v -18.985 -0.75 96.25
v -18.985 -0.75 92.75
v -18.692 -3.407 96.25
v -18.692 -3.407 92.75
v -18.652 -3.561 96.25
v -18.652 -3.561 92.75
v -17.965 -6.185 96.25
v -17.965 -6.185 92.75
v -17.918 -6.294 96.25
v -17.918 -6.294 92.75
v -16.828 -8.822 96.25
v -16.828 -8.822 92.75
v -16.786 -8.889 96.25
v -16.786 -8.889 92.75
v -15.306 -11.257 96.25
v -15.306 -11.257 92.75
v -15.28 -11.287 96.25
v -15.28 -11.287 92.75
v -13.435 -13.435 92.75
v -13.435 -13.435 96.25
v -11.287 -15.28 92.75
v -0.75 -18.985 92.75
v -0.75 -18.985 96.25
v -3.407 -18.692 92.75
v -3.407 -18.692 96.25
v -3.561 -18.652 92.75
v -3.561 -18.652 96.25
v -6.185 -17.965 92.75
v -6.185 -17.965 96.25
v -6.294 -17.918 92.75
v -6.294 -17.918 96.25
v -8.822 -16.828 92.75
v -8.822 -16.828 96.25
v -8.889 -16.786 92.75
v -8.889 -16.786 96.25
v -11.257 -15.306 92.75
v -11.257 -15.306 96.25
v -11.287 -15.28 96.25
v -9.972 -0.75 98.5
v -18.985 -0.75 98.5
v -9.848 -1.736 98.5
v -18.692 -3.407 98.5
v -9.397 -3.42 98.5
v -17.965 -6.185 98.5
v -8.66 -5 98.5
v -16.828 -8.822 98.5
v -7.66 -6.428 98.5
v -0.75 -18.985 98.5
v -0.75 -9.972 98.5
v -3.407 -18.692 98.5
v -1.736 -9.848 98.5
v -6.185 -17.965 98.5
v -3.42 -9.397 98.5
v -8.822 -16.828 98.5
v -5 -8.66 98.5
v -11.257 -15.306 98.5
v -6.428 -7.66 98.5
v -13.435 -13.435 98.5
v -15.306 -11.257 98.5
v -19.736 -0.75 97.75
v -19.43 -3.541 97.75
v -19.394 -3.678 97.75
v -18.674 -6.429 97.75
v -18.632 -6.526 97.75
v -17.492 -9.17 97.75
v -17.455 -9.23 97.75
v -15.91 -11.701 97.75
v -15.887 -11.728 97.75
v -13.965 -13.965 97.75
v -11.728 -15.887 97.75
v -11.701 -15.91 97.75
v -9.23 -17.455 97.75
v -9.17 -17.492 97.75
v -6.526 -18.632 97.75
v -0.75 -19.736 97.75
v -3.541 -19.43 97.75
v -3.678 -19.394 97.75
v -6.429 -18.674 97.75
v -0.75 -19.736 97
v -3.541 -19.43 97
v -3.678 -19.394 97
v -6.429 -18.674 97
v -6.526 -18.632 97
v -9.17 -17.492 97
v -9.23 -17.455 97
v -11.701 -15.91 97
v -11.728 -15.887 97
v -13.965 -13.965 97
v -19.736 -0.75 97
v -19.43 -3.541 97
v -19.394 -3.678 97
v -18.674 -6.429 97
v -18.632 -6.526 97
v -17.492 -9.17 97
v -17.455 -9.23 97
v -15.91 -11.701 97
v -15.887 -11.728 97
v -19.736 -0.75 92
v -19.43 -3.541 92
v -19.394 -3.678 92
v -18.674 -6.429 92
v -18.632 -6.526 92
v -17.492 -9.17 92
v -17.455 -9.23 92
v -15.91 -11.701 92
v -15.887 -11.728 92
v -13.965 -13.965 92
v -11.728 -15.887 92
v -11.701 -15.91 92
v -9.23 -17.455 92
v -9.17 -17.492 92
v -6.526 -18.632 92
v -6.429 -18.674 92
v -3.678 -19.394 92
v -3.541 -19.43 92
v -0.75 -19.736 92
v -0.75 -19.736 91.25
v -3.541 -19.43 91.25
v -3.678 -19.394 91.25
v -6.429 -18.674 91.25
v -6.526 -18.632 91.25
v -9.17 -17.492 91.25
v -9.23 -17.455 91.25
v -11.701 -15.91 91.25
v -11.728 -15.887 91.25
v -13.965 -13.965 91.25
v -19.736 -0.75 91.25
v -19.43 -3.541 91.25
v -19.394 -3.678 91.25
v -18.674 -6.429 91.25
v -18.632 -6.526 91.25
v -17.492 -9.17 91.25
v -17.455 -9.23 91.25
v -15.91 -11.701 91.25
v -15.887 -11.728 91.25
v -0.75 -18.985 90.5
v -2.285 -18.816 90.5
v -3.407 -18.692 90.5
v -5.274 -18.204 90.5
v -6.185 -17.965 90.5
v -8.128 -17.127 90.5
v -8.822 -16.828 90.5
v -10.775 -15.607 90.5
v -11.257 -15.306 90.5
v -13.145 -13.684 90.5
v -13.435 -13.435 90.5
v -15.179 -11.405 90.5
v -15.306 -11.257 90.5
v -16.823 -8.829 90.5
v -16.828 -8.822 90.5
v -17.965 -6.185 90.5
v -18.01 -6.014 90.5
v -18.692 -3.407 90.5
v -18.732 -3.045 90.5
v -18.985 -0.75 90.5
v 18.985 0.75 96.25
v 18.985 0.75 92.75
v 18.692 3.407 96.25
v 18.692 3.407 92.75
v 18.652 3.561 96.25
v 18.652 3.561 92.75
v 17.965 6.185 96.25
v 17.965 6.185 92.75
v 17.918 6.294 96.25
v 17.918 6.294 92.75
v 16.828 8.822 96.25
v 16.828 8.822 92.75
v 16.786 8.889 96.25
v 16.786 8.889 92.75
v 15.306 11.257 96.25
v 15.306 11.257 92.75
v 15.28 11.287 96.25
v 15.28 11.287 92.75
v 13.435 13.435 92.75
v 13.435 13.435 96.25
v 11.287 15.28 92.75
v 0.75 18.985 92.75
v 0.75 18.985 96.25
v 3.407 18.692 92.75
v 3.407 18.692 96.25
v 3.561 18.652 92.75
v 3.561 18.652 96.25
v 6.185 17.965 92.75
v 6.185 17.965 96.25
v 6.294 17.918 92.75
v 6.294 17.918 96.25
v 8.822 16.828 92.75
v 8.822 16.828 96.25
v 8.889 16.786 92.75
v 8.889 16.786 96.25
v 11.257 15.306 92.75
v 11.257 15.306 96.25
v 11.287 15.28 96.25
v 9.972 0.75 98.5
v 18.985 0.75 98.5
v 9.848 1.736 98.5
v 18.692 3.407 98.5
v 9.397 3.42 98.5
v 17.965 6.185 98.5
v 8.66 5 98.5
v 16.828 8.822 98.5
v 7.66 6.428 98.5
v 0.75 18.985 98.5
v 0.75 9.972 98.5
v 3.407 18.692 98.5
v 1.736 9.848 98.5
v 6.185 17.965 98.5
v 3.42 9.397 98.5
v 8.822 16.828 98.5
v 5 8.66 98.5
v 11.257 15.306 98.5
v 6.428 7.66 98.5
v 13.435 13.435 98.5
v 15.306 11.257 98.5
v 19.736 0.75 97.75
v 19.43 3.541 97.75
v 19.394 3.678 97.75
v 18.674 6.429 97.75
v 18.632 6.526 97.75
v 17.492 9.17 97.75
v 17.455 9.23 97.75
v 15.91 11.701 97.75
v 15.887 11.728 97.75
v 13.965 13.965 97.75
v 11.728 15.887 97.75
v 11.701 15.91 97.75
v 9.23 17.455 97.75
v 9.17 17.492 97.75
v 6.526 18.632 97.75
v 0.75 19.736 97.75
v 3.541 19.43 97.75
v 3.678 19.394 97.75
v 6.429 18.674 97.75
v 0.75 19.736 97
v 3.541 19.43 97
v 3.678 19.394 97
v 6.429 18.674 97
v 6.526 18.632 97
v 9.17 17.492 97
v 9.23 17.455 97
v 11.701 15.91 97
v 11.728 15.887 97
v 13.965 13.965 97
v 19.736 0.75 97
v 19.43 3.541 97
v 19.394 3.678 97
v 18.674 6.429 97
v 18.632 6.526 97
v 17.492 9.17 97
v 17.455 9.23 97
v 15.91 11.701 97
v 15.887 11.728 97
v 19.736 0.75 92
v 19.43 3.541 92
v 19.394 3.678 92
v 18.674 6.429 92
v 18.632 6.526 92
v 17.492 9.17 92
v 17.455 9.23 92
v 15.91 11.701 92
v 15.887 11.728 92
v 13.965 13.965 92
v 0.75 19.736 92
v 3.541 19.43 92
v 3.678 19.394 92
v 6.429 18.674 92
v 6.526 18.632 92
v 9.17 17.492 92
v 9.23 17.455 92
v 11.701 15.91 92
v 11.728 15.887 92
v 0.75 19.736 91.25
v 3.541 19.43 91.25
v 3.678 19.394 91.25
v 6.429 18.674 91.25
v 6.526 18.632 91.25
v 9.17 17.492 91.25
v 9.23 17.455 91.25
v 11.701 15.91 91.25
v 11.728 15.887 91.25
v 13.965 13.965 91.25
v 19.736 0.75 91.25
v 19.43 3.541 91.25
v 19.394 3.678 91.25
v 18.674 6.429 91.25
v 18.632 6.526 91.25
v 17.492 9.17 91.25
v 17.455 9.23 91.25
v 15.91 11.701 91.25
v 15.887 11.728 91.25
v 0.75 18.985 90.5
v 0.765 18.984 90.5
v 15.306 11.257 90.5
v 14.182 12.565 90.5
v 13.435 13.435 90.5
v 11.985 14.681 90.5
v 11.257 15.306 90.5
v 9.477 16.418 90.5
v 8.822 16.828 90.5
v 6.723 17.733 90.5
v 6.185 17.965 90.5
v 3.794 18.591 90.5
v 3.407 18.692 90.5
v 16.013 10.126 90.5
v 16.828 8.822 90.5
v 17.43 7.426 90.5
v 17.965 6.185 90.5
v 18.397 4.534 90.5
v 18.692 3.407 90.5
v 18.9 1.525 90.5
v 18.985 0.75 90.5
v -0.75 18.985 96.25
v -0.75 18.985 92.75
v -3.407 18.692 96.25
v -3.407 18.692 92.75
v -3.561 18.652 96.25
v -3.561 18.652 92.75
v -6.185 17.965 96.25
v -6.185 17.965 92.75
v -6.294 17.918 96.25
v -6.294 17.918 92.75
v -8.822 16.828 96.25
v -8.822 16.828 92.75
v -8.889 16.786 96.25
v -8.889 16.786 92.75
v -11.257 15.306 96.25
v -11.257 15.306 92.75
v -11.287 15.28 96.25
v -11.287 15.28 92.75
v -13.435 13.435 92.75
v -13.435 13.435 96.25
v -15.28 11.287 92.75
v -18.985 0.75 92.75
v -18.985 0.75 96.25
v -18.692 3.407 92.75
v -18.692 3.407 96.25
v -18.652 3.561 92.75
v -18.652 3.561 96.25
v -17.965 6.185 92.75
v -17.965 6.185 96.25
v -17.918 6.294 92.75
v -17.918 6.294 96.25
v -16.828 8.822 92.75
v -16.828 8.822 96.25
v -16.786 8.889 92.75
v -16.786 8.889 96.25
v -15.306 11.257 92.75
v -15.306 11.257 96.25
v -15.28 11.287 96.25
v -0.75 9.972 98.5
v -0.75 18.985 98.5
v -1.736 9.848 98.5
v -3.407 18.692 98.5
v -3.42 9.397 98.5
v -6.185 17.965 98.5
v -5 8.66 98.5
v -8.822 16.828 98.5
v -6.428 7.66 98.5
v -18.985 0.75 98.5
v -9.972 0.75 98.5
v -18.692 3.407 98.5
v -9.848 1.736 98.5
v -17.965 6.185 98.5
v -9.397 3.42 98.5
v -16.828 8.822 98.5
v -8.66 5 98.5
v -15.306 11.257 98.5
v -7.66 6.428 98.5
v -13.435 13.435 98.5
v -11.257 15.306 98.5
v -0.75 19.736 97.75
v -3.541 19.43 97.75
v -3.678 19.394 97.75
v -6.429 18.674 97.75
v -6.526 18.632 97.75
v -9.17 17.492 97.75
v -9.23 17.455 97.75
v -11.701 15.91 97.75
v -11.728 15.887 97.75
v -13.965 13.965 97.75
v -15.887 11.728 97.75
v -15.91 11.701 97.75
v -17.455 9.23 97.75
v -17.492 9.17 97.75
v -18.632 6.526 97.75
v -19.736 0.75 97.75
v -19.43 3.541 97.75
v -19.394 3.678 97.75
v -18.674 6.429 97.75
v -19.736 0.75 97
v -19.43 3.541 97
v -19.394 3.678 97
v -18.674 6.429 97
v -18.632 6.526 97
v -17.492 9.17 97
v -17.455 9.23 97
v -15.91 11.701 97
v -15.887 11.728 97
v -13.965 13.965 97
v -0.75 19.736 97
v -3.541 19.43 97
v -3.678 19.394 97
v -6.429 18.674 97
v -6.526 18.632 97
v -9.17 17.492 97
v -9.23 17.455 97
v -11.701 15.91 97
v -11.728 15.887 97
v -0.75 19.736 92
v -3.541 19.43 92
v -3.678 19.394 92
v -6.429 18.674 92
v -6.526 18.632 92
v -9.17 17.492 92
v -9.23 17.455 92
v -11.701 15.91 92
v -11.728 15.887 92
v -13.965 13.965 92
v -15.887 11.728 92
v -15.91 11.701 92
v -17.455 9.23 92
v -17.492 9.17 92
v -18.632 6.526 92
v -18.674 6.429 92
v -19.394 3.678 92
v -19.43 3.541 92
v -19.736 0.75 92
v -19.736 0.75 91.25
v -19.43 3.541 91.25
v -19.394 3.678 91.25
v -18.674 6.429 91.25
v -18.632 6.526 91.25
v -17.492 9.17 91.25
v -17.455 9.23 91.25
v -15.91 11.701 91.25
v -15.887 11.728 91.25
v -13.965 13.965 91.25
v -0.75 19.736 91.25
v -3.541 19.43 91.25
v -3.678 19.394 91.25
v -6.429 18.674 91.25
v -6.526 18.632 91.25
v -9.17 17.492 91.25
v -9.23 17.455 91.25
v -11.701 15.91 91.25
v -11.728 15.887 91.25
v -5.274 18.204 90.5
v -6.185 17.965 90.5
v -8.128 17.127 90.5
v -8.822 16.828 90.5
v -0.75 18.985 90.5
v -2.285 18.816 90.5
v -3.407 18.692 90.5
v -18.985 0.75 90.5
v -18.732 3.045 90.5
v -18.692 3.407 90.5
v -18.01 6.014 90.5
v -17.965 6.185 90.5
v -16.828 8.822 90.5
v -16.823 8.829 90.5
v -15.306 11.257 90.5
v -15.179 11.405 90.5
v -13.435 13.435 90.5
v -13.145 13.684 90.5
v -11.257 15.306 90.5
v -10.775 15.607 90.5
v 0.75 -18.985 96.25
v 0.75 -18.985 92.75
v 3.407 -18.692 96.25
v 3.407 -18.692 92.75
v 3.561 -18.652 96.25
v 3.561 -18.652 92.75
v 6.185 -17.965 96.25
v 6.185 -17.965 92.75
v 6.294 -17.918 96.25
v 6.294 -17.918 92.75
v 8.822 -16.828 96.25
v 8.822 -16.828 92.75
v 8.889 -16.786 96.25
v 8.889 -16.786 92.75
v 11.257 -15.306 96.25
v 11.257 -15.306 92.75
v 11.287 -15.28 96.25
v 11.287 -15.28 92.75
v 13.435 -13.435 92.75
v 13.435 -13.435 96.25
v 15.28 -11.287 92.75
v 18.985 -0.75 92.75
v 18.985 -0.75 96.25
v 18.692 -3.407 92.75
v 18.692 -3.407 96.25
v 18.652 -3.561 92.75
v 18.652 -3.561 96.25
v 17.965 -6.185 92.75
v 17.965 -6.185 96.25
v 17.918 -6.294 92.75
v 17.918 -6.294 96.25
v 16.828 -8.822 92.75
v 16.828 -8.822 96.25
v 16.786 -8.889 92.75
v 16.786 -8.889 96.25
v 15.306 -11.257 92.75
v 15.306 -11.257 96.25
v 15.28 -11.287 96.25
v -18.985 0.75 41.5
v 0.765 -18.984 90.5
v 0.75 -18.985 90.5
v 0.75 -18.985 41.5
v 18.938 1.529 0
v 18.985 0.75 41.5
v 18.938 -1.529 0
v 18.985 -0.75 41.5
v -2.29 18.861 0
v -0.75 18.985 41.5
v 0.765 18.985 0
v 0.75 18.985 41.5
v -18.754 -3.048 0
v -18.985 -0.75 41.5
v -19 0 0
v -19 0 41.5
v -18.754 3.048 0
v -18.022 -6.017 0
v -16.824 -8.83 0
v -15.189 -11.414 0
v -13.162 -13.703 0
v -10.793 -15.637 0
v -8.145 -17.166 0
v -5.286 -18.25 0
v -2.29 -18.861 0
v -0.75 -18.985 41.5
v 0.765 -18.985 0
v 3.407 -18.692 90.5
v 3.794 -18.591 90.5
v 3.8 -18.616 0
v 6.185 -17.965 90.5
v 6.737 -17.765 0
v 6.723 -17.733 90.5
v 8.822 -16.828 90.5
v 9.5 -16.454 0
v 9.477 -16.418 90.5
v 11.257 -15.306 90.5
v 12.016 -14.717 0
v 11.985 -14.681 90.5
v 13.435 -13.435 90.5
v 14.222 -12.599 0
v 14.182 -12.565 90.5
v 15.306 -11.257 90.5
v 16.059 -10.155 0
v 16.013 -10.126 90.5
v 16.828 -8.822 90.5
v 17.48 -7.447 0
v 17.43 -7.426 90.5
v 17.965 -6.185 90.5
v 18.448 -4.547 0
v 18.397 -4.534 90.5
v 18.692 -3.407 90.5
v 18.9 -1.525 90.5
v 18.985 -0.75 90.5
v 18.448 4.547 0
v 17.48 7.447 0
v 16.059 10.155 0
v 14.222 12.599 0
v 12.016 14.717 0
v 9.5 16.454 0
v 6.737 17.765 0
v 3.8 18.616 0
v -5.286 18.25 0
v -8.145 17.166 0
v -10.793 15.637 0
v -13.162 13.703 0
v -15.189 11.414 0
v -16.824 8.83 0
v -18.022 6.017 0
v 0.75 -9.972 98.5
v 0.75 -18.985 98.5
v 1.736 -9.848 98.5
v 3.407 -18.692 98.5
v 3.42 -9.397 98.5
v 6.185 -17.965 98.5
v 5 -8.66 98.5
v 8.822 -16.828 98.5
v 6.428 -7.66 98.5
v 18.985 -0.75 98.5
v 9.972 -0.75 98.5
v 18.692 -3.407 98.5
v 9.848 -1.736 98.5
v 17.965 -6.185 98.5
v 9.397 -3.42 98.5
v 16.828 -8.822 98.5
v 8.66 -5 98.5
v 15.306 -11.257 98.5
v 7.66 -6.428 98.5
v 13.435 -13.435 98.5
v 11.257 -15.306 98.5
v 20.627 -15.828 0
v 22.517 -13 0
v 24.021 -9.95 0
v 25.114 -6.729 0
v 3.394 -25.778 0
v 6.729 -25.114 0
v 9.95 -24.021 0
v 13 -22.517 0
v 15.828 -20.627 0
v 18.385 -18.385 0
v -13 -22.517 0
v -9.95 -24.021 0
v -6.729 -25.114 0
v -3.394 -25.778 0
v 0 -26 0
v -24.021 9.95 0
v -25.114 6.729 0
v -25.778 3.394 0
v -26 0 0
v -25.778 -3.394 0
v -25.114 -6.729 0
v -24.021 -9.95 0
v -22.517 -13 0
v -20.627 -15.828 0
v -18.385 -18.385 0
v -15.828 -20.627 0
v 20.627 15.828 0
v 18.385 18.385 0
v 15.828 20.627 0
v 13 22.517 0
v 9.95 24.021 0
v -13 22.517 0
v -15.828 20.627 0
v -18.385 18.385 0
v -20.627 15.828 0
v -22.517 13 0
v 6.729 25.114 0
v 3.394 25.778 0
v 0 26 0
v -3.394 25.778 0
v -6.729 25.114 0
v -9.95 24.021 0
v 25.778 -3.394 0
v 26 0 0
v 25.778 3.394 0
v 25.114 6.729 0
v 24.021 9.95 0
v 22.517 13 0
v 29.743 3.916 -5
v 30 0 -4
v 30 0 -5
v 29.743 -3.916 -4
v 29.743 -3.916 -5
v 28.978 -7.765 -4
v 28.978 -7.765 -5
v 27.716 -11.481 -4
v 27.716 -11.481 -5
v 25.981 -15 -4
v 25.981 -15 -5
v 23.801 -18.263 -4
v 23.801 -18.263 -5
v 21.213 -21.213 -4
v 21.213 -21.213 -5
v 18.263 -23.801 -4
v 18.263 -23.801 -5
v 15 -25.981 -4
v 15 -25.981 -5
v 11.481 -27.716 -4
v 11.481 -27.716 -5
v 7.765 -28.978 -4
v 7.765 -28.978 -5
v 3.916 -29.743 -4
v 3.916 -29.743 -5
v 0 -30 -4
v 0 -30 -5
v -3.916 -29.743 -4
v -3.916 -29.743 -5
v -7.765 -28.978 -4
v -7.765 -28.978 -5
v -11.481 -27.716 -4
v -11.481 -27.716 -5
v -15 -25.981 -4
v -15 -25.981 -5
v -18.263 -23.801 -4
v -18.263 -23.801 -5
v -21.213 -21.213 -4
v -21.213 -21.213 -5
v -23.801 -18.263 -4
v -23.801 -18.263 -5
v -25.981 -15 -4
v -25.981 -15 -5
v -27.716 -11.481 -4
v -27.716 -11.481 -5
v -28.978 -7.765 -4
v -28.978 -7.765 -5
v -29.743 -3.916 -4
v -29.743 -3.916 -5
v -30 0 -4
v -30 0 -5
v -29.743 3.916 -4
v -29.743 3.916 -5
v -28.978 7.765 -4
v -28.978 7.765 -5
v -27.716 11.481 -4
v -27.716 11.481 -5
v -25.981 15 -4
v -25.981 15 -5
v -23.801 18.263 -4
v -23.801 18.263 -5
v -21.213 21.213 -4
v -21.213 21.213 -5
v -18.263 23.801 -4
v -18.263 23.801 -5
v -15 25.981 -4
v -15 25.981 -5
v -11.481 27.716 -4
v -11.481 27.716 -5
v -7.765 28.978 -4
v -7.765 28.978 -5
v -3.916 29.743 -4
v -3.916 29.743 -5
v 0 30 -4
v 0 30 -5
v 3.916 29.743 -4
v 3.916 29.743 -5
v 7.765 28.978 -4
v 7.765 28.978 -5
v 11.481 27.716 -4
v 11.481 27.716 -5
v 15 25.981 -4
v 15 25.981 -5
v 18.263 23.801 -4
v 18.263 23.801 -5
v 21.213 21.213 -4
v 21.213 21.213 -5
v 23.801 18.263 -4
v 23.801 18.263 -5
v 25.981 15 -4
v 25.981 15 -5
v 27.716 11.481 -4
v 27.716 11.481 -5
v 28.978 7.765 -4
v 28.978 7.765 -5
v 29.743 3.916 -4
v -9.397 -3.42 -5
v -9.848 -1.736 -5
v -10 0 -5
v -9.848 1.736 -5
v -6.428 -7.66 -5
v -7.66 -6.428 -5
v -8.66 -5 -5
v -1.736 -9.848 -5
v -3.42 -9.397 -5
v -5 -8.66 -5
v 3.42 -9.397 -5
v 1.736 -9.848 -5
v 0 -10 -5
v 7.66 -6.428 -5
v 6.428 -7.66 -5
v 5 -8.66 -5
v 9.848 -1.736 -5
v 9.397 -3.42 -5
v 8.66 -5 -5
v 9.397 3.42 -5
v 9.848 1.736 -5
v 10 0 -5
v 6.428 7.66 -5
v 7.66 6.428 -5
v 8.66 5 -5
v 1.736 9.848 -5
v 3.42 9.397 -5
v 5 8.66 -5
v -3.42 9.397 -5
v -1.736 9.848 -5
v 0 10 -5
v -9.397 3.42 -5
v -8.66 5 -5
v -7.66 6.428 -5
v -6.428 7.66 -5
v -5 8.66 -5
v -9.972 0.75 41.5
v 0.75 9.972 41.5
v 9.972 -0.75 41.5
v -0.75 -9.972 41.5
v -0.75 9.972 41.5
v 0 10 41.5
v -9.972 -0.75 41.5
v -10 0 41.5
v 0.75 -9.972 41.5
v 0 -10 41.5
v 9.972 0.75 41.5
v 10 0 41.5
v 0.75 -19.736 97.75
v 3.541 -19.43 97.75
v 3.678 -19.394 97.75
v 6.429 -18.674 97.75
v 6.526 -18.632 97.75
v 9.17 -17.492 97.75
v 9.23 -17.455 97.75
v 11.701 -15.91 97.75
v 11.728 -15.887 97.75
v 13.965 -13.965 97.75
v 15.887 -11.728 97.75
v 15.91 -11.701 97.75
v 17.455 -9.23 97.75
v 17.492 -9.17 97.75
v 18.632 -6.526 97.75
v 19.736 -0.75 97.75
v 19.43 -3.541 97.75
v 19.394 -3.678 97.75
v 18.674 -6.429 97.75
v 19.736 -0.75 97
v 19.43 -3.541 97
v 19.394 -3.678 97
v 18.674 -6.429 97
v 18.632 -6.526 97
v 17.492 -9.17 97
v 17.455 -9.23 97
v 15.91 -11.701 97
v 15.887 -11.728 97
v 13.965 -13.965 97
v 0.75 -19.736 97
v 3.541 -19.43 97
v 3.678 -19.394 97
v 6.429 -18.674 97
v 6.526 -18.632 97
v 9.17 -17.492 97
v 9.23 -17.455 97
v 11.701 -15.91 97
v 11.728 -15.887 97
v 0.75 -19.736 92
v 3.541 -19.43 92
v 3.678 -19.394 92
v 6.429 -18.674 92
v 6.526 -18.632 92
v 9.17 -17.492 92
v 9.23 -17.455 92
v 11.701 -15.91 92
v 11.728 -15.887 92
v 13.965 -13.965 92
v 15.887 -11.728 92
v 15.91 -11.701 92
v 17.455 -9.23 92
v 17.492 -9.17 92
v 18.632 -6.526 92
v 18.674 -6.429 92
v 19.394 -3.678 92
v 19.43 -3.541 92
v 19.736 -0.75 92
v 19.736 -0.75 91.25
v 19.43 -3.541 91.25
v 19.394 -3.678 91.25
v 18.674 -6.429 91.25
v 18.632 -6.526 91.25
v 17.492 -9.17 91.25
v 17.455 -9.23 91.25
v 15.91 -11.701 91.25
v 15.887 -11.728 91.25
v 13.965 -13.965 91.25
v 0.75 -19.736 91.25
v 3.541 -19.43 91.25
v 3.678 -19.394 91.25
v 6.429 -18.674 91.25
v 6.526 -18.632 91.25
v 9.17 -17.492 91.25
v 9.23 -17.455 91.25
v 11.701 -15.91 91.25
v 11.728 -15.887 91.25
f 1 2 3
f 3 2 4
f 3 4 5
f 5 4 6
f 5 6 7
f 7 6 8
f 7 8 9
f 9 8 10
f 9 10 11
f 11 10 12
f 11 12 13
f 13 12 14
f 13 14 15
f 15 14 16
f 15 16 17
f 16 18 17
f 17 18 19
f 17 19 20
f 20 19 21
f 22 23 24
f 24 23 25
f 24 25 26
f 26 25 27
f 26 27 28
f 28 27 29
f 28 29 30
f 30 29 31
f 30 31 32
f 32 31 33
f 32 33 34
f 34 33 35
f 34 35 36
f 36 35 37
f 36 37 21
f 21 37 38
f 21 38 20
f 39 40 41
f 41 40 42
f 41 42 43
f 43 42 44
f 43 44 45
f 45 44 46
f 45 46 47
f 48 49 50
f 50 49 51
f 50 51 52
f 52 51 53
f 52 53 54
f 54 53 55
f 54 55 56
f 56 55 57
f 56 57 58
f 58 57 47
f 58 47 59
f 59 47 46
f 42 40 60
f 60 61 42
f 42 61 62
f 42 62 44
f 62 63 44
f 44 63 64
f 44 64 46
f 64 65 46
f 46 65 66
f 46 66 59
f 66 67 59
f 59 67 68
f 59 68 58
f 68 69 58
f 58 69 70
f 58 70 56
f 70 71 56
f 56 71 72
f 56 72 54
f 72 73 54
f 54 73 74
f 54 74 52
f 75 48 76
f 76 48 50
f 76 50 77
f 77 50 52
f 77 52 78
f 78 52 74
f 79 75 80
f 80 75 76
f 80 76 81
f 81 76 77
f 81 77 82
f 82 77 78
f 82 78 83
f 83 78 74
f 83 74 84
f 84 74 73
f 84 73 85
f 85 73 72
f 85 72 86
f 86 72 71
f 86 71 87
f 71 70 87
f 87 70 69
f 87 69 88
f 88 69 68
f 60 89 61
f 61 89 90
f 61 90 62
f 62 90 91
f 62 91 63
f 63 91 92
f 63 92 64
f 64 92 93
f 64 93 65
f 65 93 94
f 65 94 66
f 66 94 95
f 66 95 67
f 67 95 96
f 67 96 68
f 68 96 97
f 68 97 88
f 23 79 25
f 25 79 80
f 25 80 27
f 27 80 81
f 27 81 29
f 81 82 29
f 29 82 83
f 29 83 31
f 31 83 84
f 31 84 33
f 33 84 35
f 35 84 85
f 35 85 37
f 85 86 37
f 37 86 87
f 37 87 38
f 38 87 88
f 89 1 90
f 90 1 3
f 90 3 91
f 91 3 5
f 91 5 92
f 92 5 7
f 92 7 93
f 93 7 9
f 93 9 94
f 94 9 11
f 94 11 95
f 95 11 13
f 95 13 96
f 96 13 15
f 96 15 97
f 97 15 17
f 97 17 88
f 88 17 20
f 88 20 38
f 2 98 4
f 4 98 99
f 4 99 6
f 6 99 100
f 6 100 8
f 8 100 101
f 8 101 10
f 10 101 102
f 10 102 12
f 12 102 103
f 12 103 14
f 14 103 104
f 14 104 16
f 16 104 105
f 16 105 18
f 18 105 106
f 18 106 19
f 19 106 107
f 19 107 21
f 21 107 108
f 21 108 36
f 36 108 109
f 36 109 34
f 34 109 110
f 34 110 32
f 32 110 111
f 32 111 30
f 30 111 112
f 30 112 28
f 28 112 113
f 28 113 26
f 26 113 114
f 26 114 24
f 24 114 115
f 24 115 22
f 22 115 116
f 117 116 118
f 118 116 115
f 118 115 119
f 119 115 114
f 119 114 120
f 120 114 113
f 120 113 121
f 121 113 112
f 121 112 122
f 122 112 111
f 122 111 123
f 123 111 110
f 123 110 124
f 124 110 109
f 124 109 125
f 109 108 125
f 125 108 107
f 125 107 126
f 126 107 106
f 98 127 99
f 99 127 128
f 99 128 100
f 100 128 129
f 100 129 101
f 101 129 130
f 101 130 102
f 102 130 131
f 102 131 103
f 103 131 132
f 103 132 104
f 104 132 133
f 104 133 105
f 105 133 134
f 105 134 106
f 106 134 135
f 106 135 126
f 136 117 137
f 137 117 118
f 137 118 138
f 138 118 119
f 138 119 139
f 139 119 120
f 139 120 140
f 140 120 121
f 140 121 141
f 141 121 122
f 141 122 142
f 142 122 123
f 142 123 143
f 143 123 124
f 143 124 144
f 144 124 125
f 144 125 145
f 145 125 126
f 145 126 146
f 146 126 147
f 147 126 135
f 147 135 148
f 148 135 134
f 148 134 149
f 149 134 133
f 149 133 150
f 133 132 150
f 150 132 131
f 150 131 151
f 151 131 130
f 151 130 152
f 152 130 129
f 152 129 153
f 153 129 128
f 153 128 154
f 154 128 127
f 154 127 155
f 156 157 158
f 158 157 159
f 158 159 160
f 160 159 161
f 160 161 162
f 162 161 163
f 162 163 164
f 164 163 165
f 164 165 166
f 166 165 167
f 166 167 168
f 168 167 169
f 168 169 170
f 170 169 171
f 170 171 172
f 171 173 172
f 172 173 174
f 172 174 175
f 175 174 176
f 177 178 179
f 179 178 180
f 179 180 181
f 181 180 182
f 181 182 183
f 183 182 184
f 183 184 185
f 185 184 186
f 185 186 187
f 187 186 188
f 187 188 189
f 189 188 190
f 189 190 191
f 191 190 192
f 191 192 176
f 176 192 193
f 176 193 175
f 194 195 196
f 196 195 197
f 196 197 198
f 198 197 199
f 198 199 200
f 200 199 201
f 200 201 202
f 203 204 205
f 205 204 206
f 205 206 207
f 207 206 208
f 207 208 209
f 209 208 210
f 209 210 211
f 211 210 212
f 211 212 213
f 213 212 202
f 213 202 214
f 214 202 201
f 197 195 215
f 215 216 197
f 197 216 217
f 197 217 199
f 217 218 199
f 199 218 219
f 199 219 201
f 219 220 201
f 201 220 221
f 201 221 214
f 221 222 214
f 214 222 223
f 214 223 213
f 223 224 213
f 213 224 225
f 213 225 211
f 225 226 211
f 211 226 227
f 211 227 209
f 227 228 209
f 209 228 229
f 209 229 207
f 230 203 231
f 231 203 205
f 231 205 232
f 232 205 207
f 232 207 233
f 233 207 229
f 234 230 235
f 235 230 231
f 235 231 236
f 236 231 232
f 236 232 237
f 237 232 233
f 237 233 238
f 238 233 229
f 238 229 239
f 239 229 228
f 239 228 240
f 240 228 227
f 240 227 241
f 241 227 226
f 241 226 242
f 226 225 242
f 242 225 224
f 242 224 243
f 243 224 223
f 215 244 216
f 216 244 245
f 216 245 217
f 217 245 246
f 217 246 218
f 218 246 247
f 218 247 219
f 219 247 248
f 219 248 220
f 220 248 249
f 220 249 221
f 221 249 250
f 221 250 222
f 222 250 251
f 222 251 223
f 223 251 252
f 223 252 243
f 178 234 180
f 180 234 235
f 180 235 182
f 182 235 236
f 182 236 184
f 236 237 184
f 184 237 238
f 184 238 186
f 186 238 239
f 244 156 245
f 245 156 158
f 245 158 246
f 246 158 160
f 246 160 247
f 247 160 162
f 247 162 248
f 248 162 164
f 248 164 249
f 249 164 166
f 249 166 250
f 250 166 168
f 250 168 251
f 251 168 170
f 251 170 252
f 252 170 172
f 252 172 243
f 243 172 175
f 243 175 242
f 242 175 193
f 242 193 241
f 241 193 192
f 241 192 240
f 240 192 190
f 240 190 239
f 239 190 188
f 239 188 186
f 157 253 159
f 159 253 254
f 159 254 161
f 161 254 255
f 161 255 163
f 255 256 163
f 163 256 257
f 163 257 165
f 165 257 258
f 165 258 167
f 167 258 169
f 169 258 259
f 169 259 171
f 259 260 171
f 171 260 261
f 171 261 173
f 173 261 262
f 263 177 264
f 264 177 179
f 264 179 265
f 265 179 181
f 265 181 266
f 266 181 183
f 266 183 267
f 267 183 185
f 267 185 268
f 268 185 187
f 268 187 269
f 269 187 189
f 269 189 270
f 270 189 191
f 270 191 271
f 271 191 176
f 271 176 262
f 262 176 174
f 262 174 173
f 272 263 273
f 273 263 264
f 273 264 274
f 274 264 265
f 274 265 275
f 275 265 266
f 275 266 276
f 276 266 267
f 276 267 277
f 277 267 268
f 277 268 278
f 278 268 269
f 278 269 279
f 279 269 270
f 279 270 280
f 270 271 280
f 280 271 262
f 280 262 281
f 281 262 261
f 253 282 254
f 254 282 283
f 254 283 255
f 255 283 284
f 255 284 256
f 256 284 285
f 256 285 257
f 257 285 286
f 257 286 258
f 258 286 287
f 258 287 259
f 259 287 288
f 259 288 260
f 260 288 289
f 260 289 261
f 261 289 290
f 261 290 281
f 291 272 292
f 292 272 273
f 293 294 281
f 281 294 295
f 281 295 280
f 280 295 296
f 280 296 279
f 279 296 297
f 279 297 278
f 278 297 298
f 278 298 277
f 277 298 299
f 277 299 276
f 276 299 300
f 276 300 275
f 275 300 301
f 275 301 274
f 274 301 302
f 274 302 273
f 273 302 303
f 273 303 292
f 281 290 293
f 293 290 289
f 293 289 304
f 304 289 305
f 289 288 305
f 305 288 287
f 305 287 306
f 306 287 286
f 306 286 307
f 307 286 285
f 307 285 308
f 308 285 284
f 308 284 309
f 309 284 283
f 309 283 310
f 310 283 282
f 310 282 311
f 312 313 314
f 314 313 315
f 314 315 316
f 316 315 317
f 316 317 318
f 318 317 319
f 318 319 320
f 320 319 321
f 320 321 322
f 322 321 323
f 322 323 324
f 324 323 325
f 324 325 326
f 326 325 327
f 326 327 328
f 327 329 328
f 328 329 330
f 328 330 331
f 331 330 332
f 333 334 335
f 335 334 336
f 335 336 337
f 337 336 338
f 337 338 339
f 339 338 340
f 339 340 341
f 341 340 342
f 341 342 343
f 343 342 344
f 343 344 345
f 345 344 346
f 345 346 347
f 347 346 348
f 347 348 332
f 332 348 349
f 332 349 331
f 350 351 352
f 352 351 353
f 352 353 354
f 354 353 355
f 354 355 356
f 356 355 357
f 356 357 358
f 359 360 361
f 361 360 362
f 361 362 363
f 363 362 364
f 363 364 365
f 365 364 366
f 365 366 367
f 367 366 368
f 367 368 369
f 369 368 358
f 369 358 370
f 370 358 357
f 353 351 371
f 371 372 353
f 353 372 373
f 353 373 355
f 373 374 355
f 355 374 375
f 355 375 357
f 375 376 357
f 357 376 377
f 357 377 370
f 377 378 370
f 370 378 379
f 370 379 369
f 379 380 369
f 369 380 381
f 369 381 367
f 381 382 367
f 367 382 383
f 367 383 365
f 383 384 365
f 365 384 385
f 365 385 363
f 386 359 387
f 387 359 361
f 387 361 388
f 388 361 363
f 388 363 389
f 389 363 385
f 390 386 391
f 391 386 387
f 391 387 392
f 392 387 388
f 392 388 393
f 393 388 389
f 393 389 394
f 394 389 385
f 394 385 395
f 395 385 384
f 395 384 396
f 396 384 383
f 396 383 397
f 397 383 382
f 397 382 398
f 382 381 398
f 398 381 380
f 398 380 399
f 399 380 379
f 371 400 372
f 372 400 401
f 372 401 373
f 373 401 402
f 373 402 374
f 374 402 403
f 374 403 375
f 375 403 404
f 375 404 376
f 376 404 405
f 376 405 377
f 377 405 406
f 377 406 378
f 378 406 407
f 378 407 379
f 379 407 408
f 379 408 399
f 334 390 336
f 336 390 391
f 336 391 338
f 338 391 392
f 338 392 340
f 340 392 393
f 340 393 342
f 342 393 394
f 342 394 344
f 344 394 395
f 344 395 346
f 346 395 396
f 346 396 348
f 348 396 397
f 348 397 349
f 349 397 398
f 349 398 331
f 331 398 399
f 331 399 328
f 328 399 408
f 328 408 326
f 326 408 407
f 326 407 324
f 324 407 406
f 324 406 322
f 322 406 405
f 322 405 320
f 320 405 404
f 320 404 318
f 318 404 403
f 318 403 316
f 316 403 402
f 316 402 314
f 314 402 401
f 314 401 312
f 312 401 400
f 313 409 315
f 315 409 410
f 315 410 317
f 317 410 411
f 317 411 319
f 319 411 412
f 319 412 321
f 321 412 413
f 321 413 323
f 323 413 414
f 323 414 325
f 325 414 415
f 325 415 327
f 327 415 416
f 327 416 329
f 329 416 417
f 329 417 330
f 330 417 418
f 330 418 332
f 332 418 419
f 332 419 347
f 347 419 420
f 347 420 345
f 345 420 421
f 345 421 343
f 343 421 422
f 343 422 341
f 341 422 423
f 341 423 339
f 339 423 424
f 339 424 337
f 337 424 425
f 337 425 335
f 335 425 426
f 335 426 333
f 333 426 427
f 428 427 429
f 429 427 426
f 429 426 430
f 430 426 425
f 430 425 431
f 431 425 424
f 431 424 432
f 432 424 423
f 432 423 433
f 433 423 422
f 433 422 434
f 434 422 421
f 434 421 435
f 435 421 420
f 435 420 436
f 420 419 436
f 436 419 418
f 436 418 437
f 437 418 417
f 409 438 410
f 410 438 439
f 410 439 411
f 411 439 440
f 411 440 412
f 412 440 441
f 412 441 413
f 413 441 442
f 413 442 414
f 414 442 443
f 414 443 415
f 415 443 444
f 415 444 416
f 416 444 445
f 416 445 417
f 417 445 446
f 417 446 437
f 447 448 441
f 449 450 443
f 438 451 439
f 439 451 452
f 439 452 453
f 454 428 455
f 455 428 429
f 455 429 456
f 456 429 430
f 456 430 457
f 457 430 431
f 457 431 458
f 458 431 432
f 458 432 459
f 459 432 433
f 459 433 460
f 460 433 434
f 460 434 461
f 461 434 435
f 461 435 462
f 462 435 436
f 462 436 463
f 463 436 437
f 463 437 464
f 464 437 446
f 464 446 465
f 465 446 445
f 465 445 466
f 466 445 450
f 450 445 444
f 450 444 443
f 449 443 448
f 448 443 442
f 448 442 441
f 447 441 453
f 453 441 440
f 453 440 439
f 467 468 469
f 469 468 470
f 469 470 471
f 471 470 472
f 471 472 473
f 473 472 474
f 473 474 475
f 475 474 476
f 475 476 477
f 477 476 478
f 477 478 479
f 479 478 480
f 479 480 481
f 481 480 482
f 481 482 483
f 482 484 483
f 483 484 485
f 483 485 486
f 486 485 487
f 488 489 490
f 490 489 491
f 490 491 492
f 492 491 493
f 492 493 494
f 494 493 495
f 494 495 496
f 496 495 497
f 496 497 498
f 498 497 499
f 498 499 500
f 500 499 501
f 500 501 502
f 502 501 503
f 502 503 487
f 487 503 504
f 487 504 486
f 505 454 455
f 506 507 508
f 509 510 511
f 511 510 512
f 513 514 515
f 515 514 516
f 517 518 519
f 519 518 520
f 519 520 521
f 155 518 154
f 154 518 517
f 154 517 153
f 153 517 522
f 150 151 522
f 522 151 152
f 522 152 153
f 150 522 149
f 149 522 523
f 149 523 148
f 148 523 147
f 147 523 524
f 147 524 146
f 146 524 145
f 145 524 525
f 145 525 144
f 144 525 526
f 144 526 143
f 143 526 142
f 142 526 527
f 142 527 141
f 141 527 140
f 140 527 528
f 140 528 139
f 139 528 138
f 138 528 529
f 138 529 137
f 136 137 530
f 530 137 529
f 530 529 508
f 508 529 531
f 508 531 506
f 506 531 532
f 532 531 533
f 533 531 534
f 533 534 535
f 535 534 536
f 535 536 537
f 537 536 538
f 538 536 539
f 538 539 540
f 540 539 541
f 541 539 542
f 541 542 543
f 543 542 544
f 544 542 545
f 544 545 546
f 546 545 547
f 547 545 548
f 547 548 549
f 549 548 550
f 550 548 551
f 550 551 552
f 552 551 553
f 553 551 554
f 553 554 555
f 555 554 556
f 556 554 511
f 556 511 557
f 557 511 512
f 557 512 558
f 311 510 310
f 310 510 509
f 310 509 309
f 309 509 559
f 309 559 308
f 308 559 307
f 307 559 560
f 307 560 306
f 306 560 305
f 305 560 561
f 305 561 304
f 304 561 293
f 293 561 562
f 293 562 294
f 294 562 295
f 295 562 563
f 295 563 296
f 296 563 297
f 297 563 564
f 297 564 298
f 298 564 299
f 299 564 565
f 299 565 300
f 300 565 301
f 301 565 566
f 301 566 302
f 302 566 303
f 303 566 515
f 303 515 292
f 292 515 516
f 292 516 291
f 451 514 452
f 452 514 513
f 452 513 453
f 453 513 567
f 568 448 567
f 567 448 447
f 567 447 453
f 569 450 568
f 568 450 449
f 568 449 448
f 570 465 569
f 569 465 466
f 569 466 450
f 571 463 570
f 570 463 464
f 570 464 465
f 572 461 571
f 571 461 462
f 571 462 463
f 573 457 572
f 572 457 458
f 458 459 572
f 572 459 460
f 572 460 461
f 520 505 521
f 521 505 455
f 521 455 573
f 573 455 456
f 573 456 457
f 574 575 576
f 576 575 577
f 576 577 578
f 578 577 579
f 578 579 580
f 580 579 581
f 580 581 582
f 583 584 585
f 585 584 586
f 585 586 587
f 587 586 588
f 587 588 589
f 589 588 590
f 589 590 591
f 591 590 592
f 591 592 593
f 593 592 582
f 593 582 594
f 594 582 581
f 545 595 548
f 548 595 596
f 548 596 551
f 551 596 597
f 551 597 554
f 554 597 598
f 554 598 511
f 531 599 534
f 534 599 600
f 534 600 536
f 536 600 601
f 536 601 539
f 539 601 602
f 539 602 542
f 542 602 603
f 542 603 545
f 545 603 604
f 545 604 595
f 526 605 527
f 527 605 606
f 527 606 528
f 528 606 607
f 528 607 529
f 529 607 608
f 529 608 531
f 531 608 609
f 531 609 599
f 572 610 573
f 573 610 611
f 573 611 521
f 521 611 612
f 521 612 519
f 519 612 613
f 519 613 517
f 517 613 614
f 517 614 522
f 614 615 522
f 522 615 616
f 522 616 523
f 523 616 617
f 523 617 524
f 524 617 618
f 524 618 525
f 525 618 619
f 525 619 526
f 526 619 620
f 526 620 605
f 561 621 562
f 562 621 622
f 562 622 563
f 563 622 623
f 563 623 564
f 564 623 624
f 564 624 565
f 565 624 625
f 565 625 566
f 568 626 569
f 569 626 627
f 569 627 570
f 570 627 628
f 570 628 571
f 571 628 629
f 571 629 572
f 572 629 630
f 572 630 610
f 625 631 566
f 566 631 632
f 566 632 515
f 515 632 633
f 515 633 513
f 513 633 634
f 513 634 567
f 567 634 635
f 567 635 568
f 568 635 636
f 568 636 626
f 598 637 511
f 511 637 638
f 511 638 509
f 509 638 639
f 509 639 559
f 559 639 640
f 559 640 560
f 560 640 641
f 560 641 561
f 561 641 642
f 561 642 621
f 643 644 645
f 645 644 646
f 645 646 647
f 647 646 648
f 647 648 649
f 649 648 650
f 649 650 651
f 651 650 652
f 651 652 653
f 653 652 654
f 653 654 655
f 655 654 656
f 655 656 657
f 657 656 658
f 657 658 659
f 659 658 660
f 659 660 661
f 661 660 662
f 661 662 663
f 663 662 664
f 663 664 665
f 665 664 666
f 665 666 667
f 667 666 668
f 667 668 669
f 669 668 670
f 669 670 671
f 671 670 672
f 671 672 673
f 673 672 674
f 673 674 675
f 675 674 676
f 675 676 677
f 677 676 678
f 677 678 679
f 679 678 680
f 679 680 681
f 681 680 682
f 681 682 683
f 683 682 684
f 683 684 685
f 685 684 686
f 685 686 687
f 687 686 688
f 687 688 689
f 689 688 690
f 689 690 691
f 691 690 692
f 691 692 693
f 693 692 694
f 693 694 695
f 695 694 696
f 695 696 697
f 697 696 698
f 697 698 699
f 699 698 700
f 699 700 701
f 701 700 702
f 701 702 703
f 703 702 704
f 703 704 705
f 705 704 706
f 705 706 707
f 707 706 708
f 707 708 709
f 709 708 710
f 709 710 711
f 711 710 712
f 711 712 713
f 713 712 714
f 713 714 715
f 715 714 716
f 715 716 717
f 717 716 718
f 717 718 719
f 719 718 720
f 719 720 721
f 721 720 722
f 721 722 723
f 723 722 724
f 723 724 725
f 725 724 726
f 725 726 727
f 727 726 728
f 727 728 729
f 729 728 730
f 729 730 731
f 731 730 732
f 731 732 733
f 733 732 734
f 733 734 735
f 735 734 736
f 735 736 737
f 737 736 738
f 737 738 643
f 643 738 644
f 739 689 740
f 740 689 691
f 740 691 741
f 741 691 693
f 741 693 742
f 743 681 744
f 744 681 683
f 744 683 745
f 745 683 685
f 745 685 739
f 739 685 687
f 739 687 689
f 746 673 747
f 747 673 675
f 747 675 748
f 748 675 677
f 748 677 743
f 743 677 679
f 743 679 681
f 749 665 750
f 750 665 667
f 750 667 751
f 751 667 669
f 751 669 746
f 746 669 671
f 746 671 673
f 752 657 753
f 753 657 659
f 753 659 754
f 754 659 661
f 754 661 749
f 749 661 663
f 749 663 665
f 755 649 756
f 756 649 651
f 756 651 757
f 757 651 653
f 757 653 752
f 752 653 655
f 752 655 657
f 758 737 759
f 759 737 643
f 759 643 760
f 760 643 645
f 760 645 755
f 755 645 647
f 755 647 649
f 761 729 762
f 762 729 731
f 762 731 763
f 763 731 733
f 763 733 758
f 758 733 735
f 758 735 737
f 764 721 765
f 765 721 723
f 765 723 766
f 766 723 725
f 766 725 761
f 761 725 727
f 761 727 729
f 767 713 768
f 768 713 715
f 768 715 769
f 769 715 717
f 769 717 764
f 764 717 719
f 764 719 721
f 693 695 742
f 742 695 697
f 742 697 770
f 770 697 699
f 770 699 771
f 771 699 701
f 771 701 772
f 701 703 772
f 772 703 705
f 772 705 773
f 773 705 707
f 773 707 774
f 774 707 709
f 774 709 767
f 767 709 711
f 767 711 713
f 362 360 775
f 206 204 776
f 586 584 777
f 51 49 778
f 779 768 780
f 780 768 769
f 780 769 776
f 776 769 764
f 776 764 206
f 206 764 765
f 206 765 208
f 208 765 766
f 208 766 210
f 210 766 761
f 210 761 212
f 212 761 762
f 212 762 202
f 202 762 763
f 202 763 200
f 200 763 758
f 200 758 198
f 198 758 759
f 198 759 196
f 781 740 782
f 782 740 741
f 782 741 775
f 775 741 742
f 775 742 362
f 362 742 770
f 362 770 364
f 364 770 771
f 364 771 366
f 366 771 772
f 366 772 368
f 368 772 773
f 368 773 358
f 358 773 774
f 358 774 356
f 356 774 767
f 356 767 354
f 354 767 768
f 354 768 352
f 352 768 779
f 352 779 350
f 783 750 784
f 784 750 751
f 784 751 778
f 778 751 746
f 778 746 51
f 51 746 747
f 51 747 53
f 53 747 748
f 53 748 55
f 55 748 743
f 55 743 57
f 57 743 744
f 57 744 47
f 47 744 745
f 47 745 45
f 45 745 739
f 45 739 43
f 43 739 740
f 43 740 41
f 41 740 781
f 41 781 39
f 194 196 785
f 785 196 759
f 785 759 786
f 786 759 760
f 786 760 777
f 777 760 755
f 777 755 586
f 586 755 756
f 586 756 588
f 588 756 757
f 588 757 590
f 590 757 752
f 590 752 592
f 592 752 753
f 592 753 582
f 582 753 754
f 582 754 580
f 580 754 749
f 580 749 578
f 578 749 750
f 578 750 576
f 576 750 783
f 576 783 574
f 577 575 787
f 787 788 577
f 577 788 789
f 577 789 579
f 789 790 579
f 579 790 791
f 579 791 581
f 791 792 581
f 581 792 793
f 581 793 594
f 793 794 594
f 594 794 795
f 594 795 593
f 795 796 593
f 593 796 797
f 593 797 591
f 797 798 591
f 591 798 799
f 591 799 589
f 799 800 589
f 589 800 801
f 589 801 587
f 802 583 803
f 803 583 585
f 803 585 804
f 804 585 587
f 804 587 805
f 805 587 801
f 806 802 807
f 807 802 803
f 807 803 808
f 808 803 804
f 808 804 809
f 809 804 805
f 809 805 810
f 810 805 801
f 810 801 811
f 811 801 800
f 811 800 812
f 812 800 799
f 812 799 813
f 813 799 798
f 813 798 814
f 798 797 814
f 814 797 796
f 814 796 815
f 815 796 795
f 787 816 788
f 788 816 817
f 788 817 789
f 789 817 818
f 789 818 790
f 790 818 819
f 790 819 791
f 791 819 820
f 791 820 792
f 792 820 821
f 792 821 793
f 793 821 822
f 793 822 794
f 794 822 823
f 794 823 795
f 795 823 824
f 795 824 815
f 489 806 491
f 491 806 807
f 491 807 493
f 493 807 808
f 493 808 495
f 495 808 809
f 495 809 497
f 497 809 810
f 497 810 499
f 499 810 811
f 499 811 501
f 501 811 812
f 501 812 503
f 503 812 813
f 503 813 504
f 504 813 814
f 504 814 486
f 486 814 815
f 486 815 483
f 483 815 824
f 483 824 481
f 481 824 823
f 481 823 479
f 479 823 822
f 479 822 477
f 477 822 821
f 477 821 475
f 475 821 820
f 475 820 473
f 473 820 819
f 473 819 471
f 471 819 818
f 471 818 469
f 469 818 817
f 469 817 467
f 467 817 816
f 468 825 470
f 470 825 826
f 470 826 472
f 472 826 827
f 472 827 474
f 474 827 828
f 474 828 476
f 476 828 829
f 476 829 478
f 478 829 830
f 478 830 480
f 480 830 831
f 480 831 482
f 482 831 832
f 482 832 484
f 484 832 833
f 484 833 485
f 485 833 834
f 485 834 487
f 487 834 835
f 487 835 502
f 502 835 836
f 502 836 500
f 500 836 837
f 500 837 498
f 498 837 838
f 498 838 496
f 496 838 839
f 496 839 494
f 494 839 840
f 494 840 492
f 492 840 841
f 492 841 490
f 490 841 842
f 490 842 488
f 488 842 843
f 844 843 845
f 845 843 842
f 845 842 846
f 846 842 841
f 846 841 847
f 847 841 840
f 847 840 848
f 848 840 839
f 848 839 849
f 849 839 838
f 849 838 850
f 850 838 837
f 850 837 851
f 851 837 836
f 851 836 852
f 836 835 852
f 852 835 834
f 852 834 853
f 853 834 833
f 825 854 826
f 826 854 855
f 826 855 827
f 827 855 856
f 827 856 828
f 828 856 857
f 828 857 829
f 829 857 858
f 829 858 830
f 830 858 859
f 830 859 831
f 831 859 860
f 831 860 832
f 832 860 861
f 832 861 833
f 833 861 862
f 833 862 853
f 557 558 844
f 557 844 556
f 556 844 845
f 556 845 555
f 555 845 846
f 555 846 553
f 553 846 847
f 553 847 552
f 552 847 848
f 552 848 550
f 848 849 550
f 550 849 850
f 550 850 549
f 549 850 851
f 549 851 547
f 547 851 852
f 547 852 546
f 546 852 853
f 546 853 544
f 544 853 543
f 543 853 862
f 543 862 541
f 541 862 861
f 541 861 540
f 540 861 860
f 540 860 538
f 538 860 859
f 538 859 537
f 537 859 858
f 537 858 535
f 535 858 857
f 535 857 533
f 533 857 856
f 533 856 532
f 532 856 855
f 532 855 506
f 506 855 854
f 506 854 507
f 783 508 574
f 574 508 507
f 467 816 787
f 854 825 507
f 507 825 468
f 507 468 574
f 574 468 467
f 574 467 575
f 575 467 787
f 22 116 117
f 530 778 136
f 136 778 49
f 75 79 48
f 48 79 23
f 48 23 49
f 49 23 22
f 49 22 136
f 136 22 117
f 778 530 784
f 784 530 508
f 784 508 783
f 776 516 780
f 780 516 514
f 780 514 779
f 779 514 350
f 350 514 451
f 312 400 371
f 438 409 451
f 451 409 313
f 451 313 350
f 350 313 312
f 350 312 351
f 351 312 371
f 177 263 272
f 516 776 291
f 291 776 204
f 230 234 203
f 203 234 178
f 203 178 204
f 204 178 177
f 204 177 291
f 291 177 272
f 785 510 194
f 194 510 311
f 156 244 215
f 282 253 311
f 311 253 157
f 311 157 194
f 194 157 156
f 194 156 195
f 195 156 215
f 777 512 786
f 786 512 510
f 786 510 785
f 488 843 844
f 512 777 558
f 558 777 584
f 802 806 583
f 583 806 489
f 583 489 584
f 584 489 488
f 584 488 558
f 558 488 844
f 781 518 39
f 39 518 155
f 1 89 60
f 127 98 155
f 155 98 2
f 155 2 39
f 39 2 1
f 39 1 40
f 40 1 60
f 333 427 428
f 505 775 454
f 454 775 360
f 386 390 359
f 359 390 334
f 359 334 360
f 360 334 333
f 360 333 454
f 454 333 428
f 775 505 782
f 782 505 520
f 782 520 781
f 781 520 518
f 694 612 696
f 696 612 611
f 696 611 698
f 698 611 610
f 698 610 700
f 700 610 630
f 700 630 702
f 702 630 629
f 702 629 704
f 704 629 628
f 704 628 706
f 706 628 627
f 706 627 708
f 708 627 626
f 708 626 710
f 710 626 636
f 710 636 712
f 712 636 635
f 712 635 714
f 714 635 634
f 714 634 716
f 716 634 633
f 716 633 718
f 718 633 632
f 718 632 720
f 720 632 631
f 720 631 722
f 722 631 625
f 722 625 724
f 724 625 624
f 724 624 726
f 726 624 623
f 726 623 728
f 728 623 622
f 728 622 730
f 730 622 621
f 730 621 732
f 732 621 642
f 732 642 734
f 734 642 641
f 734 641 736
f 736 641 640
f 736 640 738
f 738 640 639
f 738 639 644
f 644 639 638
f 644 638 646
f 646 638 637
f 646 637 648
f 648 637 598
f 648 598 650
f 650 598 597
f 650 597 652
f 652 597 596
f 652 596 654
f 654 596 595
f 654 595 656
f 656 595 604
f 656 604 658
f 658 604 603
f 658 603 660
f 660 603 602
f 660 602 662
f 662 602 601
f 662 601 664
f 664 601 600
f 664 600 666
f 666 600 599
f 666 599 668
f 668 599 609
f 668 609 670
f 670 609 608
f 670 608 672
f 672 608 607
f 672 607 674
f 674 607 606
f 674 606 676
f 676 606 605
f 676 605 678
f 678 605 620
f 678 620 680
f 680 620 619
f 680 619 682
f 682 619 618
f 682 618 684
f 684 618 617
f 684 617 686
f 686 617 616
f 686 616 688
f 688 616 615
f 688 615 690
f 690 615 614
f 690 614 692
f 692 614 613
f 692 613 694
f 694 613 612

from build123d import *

# Parameters (mm, degrees)
AXLE_BASE_SKETCH_R        = 19
AXLE_DEPTH                = 98.5
GUARD_BASE_R              = 30
GUARD_DEPTH               = 5
INNER_AXLE_HOLE_BASE_R    = 10
INNER_AXLE_HOLE_DEPTH     = 104.5
BEND_ROOM_BASE_W          = 1.5
BEND_ROOM_BASE_H          = 50
BEND_ROOM_1_DEPTH         = 57
BEND_ROOM_2_COUNT         = 2
BEND_ROOM_2_ANGLE         = 90
EASY_REMOVAL_CHAMFER_SIZE = 4


with BuildPart() as part:
    # Axle base sketch → Axle (new body)
    with BuildSketch(Plane.XY):
        Circle(AXLE_BASE_SKETCH_R)
    extrude(amount=AXLE_DEPTH)

    # Guard base → Guard (add)
    with BuildSketch(Plane(origin=(0, 0, 0), x_dir=(-1, 0, 0), z_dir=(0, 0, -1))):
        Circle(GUARD_BASE_R)
    extrude(amount=GUARD_DEPTH)

    # Inner axle hole base → Inner axle hole (cut, through all)
    with BuildSketch(Plane.XY.offset(98.5)):
        Circle(INNER_AXLE_HOLE_BASE_R)
    extrude(amount=-INNER_AXLE_HOLE_DEPTH, mode=Mode.SUBTRACT)

    # Mate ring base → Mate rings (revolve)
    with BuildSketch(Plane(origin=(0, 0, 0), x_dir=(1, 0, 0), z_dir=(0, 1, 0))):
        Polygon((19, -98.5), (19.75, -97.75), (19.75, -97), (19, -96.25), align=None)
        Polygon((19, -92.75), (19.75, -92), (19.75, -91.25), (19, -90.5), align=None)
    revolve(axis=Axis((0, 0, 0), (0, 0, -1)))

    # Bend room base → Bend room 1 (cut)
    with BuildSketch(Plane.XY.offset(98.5)):
        Rectangle(BEND_ROOM_BASE_W, BEND_ROOM_BASE_H)
    bend_room_1 = extrude(amount=-BEND_ROOM_1_DEPTH, mode=Mode.SUBTRACT)

    # Bend room 2: Bend room 1 ×2 about axis
    bend_room_2_axis = Axis((0, 0, 0), (0, 0, -1))
    for i in range(1, BEND_ROOM_2_COUNT):
        add(bend_room_1.rotate(bend_room_2_axis, i * BEND_ROOM_2_ANGLE / (BEND_ROOM_2_COUNT - 1)), mode=Mode.SUBTRACT)

    # Easy removal chamfer
    easy_removal_chamfer_edges = [part.edges().sort_by_distance(p)[0] for p in [
        (30, 0, 0),
    ]]
    chamfer(easy_removal_chamfer_edges, length=EASY_REMOVAL_CHAMFER_SIZE)


solid = part.part
